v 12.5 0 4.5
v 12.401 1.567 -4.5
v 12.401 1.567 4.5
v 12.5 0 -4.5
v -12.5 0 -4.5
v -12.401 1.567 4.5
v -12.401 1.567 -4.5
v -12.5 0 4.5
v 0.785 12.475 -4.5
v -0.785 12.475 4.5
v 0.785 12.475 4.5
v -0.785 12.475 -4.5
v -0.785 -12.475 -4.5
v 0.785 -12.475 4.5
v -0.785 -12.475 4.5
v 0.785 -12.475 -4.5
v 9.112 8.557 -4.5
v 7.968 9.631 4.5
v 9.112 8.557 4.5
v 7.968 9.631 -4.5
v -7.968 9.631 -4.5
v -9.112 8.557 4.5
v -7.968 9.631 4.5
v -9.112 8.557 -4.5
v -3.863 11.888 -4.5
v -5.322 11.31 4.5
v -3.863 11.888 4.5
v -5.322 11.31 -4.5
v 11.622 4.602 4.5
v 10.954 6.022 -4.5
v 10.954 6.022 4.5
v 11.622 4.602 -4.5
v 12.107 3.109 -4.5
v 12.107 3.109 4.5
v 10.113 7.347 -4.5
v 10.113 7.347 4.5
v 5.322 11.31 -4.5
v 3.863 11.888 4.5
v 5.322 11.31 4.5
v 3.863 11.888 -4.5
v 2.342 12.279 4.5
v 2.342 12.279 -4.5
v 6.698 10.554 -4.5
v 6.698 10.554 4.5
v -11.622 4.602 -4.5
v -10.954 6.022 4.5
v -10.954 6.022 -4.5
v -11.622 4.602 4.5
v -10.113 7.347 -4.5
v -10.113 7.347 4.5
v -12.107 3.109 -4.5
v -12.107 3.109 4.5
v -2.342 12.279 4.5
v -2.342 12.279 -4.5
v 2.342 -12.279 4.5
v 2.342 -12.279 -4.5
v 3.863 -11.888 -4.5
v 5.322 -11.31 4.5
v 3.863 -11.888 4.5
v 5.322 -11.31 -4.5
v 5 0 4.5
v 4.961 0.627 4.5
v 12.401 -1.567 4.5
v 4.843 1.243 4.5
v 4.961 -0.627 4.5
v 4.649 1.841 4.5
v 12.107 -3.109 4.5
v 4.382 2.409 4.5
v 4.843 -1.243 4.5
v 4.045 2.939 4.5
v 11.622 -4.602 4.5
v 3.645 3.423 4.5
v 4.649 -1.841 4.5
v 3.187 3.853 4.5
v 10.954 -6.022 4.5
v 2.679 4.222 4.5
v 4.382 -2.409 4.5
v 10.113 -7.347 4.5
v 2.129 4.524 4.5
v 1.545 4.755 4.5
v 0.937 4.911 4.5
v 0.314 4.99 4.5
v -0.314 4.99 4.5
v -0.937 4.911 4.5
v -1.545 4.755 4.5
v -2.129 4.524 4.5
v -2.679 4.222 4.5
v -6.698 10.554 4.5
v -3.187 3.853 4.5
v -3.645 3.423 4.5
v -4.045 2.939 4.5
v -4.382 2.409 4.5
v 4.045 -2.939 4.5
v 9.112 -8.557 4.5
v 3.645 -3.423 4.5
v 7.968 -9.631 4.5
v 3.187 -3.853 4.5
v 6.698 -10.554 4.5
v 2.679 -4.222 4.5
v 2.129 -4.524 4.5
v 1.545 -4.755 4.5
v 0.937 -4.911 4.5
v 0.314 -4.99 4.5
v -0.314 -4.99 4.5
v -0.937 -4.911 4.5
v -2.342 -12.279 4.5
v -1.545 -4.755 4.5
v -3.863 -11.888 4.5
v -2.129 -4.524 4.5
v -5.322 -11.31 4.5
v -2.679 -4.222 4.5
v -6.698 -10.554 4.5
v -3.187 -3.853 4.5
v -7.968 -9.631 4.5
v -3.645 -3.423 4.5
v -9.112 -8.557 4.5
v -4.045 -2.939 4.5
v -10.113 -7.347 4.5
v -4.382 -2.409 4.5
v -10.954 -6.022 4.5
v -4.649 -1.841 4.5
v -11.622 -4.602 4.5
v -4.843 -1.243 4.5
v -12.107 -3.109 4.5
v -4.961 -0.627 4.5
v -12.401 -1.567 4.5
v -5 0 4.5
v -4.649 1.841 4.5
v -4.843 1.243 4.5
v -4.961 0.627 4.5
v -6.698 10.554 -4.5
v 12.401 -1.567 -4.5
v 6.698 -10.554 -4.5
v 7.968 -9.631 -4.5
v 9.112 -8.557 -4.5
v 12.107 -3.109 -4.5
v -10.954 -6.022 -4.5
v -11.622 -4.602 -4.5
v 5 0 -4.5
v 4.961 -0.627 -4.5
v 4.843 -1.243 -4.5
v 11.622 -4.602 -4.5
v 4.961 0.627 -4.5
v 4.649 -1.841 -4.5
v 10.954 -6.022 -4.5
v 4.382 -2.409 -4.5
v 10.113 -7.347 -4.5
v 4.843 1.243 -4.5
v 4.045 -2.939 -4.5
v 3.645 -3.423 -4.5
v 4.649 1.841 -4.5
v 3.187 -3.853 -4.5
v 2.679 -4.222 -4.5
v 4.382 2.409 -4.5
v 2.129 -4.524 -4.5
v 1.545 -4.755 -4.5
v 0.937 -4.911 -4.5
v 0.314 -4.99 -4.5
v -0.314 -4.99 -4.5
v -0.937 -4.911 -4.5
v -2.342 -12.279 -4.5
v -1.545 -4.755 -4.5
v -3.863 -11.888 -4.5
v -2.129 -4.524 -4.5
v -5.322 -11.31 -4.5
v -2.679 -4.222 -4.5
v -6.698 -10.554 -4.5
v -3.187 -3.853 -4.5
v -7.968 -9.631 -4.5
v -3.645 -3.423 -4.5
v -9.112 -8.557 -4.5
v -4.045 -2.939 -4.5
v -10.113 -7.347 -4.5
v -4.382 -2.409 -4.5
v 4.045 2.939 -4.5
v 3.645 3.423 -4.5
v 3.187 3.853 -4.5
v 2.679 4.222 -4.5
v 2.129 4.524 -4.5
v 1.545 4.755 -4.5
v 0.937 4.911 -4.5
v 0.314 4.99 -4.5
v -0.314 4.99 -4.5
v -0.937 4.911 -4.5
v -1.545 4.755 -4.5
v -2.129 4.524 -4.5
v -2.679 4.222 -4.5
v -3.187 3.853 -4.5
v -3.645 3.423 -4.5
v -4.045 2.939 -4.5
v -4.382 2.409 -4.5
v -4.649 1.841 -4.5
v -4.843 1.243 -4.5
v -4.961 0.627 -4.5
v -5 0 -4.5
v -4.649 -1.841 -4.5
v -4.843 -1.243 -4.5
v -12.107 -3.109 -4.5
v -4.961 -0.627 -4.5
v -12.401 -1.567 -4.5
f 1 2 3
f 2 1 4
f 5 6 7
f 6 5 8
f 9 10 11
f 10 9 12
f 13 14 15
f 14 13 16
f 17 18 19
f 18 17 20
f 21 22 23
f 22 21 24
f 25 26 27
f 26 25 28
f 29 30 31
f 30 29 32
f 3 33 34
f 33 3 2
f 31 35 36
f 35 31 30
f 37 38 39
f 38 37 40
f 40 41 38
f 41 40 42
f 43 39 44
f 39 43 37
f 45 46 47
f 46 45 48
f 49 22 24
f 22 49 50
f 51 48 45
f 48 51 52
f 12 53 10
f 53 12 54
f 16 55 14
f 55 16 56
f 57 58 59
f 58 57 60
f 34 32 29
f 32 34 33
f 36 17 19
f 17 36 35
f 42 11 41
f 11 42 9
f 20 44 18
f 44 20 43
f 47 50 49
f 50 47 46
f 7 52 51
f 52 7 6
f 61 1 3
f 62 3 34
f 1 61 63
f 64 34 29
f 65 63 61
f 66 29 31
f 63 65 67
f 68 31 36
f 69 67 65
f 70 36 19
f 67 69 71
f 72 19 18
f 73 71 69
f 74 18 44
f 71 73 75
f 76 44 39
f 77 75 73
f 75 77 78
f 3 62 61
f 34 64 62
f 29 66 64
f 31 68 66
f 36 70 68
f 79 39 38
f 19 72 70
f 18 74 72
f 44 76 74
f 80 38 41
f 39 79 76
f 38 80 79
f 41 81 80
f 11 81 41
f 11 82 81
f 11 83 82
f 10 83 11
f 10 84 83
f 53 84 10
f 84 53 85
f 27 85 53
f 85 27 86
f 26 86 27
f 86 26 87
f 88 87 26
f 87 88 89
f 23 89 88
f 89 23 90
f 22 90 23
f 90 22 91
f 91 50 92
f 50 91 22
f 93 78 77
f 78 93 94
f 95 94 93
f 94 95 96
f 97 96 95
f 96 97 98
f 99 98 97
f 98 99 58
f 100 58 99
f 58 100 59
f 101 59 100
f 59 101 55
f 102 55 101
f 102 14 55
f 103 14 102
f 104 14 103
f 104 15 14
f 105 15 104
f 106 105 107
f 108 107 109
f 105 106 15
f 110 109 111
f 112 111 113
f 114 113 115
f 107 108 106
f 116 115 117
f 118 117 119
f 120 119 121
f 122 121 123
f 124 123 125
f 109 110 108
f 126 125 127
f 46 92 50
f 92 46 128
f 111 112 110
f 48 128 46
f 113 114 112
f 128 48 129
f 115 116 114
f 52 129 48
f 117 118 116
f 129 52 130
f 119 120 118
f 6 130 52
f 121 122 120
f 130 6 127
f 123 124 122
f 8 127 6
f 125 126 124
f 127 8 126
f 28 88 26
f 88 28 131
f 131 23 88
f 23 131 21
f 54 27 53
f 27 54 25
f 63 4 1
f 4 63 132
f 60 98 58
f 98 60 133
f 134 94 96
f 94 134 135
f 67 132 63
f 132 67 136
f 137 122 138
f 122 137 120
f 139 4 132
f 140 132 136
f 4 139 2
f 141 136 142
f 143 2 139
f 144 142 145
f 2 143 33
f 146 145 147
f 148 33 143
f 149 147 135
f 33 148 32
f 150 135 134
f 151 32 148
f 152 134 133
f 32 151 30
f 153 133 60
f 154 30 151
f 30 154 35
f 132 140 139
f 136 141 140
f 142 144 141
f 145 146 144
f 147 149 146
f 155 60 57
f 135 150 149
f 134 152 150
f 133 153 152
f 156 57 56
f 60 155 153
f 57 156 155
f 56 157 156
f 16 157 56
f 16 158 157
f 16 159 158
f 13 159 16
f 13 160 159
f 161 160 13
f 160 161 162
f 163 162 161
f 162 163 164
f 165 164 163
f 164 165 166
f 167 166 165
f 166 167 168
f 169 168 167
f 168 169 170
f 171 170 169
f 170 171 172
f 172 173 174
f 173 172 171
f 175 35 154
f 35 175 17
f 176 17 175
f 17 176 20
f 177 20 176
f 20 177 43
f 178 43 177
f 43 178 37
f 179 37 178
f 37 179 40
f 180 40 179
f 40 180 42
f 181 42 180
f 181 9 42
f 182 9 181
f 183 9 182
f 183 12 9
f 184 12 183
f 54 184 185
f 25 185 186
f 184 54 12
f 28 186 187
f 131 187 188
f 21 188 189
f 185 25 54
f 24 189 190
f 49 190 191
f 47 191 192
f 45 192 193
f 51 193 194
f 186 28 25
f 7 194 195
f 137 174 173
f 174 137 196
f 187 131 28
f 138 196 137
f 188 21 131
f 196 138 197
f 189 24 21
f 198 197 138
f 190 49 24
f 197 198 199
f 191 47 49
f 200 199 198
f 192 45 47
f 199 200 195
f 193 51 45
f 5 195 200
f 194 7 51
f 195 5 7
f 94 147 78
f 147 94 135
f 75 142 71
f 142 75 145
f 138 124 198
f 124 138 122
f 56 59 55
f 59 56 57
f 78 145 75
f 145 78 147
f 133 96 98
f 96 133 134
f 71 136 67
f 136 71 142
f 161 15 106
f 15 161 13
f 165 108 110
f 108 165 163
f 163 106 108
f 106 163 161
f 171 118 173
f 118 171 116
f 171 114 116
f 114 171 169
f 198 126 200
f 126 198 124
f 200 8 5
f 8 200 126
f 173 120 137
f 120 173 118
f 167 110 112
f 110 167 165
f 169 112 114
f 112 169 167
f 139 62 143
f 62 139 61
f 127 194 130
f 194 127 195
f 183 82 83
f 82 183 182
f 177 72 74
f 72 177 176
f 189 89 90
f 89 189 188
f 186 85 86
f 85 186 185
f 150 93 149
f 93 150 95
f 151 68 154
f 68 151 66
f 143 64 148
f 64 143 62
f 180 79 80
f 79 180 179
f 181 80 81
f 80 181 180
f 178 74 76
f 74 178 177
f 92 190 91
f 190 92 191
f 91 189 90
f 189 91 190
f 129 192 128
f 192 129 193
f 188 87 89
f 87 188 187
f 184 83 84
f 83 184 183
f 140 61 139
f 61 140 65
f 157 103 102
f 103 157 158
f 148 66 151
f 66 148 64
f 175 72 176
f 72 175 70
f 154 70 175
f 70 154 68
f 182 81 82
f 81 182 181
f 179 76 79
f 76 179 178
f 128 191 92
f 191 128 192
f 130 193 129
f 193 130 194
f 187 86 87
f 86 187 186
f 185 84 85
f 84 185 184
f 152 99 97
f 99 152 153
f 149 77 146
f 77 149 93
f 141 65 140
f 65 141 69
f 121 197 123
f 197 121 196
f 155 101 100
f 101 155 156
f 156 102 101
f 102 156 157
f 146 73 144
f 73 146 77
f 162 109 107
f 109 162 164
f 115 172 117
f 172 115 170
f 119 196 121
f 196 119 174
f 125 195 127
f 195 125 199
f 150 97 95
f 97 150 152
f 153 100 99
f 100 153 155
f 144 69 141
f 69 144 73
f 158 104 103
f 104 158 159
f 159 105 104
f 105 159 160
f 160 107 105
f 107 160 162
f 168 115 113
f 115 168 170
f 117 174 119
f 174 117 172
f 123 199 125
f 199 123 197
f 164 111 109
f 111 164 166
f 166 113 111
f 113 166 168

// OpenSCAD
$fn = 50;


difference() {
	union() {
		translate(v = [0, 0, -4.5000000000]) {
			cylinder(h = 9, r = 12.5000000000);
		}
	}
	union() {
		translate(v = [0, 0, -100.0000000000]) {
			cylinder(h = 200, r = 5);
		}
	}
}
